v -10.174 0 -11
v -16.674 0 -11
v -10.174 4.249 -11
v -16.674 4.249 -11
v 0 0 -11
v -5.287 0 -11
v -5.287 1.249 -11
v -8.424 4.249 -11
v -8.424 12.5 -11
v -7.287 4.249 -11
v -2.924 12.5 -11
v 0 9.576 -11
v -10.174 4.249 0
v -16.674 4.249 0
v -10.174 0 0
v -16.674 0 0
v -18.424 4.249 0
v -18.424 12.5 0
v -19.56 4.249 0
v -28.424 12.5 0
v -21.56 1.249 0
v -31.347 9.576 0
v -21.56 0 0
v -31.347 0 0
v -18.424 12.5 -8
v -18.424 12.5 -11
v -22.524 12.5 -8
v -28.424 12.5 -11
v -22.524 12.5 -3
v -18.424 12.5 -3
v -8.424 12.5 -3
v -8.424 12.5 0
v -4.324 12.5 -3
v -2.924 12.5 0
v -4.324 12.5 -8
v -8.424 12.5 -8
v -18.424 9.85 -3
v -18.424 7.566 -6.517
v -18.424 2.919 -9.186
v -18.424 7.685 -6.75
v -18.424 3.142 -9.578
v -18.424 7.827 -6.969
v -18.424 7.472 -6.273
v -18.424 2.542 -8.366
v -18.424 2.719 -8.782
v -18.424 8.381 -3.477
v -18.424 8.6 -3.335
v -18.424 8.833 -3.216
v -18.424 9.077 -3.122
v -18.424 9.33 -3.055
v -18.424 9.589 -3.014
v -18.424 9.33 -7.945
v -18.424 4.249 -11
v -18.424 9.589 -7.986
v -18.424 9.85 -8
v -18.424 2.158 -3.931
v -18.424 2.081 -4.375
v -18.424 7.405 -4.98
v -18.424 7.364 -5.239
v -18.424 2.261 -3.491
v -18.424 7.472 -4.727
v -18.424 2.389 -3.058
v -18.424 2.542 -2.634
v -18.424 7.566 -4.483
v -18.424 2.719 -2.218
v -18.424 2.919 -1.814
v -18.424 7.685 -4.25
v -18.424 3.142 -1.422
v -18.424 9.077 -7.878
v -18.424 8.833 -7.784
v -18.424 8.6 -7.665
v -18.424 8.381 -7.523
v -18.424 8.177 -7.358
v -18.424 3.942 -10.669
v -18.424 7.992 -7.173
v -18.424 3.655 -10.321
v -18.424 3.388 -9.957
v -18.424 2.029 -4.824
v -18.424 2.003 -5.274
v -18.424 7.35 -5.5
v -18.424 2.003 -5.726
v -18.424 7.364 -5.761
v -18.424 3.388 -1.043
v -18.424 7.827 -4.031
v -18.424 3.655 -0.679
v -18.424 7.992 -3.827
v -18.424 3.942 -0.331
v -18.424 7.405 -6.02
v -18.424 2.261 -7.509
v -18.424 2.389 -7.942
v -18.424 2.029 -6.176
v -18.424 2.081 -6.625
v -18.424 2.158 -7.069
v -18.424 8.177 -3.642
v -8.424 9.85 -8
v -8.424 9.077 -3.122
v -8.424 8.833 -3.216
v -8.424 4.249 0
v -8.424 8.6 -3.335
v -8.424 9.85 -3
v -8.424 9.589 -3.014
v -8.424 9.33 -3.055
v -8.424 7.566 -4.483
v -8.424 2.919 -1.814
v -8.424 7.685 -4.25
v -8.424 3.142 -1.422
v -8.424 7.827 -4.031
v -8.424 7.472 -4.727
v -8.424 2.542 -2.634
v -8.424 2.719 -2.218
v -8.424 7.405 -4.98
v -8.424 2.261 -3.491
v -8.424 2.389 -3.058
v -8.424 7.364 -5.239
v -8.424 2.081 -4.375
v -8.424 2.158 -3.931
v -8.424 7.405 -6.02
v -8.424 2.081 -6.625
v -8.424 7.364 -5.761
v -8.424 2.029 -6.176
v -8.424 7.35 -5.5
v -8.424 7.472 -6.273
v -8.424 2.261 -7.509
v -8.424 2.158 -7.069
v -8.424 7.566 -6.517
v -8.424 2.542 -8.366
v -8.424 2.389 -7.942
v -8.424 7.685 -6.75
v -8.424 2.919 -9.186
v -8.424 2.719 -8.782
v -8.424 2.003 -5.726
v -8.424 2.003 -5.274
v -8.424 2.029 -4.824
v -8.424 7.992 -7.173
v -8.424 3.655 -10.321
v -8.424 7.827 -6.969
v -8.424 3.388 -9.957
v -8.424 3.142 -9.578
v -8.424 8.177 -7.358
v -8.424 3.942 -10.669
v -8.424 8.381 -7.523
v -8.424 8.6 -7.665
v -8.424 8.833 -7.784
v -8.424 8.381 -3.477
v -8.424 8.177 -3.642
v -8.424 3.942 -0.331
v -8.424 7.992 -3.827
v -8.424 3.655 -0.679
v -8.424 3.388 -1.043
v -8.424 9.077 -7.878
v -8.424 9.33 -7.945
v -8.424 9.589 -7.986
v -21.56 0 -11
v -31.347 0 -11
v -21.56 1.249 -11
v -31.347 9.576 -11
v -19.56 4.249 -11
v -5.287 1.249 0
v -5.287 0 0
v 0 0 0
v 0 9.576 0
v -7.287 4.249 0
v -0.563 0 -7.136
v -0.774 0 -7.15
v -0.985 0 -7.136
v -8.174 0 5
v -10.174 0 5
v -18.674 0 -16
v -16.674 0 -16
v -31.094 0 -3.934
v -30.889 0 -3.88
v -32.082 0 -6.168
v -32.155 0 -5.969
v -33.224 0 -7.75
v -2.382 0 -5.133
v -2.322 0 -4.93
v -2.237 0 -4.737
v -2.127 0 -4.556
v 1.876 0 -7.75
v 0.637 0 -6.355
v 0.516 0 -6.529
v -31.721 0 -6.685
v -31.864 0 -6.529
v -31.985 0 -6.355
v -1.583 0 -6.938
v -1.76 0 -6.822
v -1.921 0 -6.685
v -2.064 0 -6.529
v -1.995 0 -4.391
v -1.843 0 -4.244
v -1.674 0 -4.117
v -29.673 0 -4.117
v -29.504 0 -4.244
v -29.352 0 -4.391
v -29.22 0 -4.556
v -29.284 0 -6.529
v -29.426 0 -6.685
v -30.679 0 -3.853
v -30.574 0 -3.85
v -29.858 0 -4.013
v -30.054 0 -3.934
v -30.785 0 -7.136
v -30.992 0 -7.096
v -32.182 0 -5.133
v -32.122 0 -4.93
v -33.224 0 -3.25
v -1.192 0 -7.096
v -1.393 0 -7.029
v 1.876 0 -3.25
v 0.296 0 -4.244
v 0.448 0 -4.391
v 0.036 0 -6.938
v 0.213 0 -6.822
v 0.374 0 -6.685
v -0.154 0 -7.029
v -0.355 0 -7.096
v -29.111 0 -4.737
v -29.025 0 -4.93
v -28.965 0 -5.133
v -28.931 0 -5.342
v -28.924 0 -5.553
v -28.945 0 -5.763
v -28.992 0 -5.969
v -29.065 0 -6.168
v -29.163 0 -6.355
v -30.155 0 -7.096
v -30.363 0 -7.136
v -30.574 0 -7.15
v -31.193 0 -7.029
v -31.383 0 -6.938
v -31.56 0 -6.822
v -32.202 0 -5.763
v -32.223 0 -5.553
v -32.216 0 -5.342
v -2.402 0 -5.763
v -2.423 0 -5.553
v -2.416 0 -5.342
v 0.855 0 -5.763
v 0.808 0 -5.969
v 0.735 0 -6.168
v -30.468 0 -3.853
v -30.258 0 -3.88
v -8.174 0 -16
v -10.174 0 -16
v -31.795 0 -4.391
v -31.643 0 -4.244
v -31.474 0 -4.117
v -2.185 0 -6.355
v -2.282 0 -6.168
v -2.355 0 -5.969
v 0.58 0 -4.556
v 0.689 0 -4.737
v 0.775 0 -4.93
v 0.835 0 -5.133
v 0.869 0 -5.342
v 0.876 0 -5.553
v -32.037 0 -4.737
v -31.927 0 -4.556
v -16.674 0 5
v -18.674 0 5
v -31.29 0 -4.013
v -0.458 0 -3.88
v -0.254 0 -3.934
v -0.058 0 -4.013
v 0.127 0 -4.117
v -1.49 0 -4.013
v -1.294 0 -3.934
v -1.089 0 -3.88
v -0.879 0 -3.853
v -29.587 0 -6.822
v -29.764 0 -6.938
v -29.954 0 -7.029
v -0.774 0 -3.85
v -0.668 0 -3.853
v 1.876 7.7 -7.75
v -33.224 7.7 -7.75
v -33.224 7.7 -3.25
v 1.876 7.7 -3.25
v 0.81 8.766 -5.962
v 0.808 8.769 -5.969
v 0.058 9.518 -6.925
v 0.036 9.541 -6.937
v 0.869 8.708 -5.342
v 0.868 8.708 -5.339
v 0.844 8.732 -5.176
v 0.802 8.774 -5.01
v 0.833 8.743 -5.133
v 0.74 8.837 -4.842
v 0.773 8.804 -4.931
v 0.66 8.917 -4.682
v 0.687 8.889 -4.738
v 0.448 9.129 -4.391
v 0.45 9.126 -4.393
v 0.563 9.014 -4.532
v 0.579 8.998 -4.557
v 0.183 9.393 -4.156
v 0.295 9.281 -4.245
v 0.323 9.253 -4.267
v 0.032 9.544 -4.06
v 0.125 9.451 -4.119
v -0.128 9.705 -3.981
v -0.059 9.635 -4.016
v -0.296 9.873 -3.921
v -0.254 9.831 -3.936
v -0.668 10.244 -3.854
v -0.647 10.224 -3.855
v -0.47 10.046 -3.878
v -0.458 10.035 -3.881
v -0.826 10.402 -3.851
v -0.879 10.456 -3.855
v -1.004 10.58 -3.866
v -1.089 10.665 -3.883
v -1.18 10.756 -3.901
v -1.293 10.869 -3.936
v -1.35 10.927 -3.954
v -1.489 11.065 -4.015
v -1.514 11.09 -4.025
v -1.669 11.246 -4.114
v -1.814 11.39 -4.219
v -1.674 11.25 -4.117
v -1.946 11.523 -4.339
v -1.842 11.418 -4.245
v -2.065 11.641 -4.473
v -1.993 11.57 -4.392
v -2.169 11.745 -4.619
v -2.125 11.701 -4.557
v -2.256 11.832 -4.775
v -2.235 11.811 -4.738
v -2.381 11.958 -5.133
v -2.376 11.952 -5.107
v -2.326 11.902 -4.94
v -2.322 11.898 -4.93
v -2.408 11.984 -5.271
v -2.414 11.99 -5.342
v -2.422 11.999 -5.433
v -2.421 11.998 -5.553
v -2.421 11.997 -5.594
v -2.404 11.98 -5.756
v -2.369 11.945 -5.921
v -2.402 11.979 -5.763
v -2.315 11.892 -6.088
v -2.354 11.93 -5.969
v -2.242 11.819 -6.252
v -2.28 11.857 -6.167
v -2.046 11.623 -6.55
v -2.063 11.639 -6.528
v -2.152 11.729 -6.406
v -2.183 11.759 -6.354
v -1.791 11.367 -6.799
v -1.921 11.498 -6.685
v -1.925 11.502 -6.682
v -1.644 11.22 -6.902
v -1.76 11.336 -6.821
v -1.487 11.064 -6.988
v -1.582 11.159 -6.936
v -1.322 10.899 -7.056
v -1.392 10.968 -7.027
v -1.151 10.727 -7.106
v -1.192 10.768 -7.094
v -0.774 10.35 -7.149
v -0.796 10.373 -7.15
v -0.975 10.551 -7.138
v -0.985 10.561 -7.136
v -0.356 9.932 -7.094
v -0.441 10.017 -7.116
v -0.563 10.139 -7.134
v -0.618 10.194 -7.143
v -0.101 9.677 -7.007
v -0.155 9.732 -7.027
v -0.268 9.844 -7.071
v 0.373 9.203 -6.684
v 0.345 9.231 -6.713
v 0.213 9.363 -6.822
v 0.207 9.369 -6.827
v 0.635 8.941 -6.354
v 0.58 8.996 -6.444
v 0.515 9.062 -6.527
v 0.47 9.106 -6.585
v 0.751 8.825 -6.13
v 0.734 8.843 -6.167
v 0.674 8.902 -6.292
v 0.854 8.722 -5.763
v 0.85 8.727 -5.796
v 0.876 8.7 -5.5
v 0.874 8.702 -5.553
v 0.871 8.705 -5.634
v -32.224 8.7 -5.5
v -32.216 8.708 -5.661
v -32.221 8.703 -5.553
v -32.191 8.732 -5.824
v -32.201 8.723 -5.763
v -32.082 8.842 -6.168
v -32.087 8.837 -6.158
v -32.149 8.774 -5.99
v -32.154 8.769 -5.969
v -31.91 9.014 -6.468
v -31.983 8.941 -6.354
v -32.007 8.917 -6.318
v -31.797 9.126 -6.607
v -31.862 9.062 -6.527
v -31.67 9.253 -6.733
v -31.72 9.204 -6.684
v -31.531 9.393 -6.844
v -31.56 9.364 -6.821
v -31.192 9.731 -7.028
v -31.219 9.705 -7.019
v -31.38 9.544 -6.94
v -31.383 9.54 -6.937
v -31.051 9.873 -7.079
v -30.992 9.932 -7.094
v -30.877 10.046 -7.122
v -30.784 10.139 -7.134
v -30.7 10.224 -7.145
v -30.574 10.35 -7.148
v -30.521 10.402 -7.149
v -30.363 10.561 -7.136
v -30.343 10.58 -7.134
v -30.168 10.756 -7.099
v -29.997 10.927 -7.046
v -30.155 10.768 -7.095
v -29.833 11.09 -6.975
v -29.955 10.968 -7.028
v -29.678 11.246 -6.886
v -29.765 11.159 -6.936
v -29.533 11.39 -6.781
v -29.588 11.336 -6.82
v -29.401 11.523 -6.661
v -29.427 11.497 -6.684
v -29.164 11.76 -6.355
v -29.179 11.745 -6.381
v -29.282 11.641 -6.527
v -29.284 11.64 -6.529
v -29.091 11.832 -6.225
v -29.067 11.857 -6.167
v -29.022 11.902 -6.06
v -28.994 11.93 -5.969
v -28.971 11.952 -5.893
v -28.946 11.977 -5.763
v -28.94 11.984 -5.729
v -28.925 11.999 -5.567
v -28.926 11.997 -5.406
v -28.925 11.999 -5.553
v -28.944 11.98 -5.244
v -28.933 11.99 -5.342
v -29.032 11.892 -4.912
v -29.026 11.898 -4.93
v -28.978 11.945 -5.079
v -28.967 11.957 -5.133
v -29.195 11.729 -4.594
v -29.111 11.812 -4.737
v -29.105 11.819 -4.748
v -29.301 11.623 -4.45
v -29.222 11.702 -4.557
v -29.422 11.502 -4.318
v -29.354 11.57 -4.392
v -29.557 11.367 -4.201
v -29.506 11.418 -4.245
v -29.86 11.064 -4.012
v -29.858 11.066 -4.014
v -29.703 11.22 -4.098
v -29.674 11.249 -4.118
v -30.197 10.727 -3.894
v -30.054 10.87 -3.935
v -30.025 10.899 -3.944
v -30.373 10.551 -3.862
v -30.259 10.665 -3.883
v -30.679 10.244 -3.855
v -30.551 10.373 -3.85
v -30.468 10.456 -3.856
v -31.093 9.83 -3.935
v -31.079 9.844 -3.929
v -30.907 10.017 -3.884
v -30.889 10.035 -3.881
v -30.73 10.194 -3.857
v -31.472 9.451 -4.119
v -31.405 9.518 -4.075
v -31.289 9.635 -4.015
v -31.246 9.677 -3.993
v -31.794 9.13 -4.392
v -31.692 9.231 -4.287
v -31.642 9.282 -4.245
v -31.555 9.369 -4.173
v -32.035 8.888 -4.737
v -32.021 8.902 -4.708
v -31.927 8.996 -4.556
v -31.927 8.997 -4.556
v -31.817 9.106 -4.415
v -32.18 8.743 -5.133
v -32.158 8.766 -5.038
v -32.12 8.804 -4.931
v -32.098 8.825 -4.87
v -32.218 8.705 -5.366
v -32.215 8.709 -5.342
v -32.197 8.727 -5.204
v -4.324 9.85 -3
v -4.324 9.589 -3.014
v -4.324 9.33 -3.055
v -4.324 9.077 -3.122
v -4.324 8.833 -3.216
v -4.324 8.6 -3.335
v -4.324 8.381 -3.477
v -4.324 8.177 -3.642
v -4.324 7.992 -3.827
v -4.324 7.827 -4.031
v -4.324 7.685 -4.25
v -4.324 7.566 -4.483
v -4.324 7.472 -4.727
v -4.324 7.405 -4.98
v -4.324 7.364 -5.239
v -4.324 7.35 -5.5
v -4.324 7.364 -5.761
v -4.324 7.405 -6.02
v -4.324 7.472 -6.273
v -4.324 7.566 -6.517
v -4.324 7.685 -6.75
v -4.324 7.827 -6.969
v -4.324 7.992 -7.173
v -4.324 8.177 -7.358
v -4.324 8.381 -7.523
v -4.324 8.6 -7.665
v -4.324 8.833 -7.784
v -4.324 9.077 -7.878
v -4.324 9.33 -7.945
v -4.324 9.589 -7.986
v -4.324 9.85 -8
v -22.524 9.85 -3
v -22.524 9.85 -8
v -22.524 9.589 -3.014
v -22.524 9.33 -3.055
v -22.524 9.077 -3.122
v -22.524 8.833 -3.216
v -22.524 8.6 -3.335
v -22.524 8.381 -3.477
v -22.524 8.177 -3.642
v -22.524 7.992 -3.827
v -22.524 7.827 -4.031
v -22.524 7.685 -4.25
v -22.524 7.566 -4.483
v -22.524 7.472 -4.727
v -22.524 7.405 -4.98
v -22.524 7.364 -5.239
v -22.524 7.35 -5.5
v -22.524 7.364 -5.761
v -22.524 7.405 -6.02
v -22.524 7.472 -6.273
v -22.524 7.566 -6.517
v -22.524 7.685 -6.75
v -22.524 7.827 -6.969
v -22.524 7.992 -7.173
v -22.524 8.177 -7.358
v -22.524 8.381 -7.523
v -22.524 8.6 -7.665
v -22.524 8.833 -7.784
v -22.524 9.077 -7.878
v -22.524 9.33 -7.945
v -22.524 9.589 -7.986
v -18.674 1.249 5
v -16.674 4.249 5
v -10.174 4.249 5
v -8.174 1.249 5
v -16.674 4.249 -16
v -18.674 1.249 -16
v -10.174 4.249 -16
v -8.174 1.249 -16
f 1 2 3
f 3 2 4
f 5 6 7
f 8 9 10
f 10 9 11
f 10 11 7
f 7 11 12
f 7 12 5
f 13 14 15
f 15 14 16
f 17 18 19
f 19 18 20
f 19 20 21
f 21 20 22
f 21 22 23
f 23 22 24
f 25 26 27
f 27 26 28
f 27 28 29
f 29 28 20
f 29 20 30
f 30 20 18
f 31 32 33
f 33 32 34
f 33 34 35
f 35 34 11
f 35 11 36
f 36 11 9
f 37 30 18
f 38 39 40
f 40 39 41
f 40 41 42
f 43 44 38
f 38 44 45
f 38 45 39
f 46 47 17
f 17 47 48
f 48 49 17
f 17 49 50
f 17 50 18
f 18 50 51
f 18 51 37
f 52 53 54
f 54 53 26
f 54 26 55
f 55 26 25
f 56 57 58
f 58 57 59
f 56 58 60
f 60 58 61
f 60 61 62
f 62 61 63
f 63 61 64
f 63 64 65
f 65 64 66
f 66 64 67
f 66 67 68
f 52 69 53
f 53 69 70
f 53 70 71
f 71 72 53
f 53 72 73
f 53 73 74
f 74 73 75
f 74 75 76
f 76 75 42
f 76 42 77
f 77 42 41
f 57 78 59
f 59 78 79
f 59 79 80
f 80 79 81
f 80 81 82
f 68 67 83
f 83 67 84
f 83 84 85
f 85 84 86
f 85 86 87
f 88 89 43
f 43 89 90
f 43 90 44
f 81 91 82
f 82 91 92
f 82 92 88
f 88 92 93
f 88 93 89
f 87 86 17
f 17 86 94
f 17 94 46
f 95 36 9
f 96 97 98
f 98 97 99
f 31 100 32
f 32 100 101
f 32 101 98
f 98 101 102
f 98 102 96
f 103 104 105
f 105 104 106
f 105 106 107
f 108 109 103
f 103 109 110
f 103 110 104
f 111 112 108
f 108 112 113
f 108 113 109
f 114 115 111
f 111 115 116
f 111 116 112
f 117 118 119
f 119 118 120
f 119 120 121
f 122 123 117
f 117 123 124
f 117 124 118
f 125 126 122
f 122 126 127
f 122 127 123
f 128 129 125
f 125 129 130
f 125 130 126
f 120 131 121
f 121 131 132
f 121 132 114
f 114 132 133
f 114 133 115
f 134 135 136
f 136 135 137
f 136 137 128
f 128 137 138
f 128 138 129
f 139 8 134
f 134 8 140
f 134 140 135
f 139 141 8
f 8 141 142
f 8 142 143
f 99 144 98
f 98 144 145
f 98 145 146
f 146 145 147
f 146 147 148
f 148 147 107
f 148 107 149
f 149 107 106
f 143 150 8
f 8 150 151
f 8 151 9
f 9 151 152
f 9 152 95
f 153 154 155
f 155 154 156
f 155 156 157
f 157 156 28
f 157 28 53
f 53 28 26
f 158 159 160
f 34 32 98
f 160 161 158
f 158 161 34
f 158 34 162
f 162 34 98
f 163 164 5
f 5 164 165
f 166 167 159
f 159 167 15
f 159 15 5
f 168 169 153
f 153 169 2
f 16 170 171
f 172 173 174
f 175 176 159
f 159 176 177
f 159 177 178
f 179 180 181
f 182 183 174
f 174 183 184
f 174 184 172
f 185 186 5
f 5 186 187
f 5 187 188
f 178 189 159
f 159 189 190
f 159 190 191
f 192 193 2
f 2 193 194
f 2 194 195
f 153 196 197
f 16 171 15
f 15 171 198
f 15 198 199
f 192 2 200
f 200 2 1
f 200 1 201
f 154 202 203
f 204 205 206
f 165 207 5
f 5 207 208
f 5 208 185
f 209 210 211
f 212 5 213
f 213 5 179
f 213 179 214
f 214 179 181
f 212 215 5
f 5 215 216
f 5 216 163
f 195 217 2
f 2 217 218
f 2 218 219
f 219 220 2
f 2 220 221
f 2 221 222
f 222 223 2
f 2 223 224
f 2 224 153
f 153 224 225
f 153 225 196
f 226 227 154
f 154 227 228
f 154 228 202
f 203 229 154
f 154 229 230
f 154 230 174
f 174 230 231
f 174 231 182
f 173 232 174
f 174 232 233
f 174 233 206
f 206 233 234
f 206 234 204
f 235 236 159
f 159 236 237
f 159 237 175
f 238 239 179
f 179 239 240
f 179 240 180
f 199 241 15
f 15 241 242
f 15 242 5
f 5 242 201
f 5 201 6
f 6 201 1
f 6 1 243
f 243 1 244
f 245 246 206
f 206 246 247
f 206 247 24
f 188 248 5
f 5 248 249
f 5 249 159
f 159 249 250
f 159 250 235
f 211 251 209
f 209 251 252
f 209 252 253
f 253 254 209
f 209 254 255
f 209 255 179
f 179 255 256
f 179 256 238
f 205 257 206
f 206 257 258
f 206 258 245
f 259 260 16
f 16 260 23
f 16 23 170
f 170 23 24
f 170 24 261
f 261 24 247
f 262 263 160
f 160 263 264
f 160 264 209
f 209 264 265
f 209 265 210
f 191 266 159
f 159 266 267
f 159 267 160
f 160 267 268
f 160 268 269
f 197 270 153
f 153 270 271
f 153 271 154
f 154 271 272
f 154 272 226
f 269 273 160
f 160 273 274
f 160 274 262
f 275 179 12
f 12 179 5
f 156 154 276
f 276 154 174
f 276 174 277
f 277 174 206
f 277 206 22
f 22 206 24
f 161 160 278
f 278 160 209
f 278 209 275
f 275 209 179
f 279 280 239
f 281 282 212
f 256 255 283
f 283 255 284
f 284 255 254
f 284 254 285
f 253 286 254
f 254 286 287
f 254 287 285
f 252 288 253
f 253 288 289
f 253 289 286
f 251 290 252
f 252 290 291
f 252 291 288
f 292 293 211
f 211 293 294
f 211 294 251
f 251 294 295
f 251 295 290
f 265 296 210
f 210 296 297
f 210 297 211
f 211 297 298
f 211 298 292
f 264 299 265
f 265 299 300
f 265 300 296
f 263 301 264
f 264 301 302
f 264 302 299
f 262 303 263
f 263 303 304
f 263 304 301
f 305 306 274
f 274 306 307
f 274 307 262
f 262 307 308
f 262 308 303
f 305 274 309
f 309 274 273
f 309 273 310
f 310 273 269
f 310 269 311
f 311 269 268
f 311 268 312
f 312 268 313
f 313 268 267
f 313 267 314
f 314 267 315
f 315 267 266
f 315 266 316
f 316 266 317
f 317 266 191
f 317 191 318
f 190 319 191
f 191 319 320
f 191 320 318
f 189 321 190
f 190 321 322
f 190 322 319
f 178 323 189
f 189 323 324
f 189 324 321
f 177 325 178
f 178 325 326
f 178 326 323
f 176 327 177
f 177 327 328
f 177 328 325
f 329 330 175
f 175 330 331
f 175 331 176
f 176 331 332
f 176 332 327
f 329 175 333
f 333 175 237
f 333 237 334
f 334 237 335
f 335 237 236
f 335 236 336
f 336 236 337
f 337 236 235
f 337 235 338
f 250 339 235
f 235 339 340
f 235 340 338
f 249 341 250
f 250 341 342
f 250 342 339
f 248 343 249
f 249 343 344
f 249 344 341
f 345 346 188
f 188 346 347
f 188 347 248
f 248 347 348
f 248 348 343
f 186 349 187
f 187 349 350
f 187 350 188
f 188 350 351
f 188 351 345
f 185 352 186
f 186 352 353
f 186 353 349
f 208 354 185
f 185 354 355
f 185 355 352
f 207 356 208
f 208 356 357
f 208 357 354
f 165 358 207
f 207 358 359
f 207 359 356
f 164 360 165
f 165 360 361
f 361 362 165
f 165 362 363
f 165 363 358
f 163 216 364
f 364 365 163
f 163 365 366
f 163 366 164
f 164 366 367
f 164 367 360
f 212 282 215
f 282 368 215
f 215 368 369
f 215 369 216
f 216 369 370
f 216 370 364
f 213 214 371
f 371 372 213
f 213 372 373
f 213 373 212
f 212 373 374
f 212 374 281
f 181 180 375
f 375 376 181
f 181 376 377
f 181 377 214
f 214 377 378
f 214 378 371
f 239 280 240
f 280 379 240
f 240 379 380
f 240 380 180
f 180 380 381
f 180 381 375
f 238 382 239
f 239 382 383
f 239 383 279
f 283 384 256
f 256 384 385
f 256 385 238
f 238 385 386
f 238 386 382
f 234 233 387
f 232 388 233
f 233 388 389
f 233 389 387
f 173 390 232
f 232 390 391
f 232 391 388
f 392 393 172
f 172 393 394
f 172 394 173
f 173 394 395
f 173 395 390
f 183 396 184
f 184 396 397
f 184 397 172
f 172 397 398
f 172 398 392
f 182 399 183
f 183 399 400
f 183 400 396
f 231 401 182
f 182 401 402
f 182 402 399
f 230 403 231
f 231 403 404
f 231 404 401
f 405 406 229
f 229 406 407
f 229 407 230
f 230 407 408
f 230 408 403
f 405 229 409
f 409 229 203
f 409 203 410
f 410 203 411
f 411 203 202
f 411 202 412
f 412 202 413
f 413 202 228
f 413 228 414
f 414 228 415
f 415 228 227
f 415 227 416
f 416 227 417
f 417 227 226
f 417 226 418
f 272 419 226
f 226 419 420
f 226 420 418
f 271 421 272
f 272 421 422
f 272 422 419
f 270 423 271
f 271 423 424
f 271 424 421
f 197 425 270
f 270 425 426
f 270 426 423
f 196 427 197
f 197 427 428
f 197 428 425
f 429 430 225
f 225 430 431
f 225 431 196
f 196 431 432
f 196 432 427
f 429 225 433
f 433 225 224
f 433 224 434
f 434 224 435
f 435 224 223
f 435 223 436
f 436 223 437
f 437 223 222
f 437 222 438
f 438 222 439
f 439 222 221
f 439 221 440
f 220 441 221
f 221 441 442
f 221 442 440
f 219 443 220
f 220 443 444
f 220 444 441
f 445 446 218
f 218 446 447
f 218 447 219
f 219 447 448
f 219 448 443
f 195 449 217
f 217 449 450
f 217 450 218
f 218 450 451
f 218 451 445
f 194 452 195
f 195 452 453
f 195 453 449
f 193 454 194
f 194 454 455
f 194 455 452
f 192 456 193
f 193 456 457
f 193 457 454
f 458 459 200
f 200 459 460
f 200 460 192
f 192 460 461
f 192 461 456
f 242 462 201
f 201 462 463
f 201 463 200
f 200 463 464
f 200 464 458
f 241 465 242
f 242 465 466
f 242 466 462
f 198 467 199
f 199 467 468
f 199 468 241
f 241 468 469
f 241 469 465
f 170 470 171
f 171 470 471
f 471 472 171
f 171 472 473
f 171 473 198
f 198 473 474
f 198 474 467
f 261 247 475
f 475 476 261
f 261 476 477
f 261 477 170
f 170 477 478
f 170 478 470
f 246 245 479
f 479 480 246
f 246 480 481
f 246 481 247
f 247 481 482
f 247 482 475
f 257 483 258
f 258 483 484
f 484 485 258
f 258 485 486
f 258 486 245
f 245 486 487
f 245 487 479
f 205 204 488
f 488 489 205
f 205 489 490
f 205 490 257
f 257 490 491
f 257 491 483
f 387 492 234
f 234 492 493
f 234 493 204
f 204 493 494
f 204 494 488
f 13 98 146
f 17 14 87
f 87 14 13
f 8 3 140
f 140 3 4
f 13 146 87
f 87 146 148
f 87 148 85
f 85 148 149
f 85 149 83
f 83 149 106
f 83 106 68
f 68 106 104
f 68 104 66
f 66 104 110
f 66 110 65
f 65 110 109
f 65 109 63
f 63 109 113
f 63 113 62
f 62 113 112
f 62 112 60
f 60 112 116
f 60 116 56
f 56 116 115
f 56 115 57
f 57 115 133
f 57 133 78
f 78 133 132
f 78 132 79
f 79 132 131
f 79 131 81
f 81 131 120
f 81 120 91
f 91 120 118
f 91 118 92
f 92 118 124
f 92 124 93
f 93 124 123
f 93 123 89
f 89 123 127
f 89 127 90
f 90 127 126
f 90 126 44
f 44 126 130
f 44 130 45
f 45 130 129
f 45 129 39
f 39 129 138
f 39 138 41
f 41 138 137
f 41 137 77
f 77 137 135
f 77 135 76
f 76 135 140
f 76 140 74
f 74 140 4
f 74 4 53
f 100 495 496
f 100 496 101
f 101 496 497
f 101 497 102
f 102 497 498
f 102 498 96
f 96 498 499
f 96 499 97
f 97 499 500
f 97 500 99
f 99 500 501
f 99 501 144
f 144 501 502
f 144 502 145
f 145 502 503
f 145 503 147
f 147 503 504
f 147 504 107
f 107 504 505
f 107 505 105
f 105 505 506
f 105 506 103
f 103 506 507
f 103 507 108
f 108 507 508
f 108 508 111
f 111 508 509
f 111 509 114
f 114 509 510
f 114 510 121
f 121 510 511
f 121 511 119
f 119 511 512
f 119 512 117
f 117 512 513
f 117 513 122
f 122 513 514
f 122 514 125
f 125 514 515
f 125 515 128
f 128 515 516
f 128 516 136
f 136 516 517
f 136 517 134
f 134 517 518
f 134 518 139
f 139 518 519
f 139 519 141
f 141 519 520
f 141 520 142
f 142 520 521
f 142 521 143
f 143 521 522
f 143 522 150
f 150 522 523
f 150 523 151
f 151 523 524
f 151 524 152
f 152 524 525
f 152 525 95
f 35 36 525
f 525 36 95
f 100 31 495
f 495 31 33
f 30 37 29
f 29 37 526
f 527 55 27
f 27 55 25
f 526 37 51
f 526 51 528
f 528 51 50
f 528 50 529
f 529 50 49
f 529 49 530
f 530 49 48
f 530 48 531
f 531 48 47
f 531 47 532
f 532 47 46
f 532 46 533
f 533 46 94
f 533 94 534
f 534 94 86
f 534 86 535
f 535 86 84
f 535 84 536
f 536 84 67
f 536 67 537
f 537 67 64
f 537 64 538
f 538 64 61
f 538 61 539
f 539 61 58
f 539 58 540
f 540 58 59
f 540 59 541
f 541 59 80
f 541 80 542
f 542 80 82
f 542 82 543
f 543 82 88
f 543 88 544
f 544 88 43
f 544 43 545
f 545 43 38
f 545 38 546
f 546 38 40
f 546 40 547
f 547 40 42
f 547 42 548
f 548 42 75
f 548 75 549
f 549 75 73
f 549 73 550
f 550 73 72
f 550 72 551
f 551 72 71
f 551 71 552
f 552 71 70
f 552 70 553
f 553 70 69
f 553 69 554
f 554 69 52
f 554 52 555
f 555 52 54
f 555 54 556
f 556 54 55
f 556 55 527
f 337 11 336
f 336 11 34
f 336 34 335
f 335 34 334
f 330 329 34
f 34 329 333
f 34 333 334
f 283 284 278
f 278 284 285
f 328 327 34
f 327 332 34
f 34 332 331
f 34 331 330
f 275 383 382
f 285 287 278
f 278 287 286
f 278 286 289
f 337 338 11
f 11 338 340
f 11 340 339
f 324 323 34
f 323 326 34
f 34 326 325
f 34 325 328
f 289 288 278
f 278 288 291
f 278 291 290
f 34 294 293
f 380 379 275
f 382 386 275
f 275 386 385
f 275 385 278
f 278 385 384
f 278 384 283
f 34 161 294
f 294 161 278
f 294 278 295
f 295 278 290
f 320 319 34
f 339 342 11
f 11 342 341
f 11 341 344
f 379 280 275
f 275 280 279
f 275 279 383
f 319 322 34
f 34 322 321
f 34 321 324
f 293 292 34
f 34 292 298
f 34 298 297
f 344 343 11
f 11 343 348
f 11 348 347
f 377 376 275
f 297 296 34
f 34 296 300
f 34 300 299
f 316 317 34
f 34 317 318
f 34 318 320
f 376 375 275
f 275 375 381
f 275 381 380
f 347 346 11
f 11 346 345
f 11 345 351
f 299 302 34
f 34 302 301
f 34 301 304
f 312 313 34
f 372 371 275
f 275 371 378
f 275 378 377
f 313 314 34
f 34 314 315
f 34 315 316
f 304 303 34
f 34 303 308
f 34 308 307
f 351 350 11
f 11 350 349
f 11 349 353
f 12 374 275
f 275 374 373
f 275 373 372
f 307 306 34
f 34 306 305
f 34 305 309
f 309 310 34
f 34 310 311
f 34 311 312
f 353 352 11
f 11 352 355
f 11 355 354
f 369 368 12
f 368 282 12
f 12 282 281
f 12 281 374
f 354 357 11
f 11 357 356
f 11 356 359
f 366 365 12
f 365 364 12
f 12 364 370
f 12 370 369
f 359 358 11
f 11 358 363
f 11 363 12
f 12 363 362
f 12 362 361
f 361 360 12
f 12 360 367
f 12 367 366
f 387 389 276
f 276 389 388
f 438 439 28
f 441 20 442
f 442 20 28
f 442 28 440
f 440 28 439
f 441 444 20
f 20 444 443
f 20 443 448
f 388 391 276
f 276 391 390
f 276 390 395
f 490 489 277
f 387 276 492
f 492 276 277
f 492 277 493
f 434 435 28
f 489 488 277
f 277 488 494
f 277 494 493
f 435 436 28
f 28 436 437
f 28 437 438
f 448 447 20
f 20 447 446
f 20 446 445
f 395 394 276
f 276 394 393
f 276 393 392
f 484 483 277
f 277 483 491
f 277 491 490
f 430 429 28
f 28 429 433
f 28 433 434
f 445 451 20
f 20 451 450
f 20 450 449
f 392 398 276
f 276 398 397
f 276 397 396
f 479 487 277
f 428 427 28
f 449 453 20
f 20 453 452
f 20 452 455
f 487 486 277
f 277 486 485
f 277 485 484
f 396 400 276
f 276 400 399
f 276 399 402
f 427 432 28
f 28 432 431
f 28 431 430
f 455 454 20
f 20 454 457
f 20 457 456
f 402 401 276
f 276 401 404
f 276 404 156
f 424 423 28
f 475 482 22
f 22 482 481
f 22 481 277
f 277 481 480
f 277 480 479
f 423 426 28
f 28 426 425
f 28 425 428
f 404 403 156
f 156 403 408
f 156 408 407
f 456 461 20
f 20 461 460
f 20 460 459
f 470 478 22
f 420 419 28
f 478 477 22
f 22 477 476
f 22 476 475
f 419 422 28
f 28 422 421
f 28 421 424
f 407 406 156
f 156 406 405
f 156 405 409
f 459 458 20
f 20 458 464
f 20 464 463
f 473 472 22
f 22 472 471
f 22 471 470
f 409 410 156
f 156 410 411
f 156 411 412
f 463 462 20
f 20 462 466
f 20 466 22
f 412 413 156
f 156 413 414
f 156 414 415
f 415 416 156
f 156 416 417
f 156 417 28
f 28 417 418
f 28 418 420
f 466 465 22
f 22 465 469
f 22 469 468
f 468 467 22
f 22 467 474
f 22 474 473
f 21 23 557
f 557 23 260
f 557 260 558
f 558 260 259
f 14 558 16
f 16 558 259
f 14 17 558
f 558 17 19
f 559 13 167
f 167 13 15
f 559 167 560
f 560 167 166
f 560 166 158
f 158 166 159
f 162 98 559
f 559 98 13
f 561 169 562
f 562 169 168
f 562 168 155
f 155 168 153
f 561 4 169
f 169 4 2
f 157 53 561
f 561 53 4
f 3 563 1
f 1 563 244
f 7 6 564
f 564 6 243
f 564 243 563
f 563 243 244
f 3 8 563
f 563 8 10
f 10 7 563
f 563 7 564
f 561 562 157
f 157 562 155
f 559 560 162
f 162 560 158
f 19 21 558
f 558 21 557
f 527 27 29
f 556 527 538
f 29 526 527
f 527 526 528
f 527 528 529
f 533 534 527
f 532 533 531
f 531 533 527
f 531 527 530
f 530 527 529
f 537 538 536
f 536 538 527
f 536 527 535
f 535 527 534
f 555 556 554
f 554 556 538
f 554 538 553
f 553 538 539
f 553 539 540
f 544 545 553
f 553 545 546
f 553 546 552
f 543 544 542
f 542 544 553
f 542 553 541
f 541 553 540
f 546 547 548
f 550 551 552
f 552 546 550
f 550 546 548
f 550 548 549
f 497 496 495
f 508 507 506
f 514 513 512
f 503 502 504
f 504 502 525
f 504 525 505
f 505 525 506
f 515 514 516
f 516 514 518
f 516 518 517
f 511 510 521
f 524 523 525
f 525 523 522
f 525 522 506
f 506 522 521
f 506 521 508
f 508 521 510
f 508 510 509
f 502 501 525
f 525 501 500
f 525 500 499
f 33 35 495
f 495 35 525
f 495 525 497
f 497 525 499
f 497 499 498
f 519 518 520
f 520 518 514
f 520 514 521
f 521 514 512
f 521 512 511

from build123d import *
from OCP.BRepFilletAPI import BRepFilletAPI_MakeChamfer

# Parameters (mm, degrees)
SKIZZE1_R                       = 1.65
AUFSATZ_LINEAR_AUSTRAGEN1_DEPTH = 12.5
SCHNITT_LINEAR_START            = -10.3
SKIZZE2_R                       = 7.85
SKIZZE2_R_2                     = 2.5
SCHNITT_LINEAR_AUSTRAGEN1_DEPTH = 10
SCHNITT_LINEAR_START_2          = -5.3
SCHNITT_LINEAR_AUSTRAGEN2_DEPTH = 20
SCHNITT_LINEAR_AUSTRAGEN3_DEPTH = 4.5
SCHNITT_LINEAR_START_3          = -11
SCHNITT_LINEAR_AUSTRAGEN4_DEPTH = 11
AUFSATZ_LINEAR_START            = -4.248884
AUFSATZ_LINEAR_AUSTRAGEN2_DEPTH = 4.248884
FASE1_SIZE                      = 3
FASE1_SIZE2                     = 1.732050808
AUFSATZ_LINEAR_START_2          = 4.5
AUFSATZ_LINEAR_AUSTRAGEN3_DEPTH = 4.5
AUFSATZ_LINEAR_START_3          = 0.9
AUFSATZ_LINEAR_AUSTRAGEN4_DEPTH = 0.9
AUFSATZ_LINEAR_AUSTRAGEN5_DEPTH = 0.9


with BuildPart() as part:
    # Skizze1 → Aufsatz-Linear austragen1 (new body)
    with BuildSketch(Plane(origin=(0, 0, 0), x_dir=(1, 0, 0), z_dir=(0, 1, 0))):
        Polygon((0, 11), (-31.34722325, 11), (-33.223611625, 7.75), (-33.223611625, 3.25), (-31.34722325, 0), (0, 0), (1.876388375, 3.25), (1.876388375, 7.75), align=None)
        with Locations(Location((-0.773611625, 5.5, 0), (0, 0, 270))):
            Circle(SKIZZE1_R, mode=Mode.SUBTRACT)
        with Locations(Location((-30.573611625, 5.5, 0), (0, 0, 270))):
            Circle(SKIZZE1_R, mode=Mode.SUBTRACT)
    extrude(amount=AUFSATZ_LINEAR_AUSTRAGEN1_DEPTH)

    # Skizze2 → Schnitt-Linear austragen1 (cut)
    with BuildSketch(Plane(origin=(1.876388375, 0, 0), x_dir=(0, 0, -1), z_dir=(1, 0, 0)).offset(SCHNITT_LINEAR_START)):
        with Locations((5.5, 9.85)):
            Circle(SKIZZE2_R)
        with Locations((5.5, 9.85)):
            Circle(SKIZZE2_R_2, mode=Mode.SUBTRACT)
    extrude(amount=-SCHNITT_LINEAR_AUSTRAGEN1_DEPTH, mode=Mode.SUBTRACT)

    # Skizze3 → Schnitt-Linear austragen2 (cut)
    with BuildSketch(Plane(origin=(1.876388375, 0, 0), x_dir=(0, 0, -1), z_dir=(1, 0, 0)).offset(SCHNITT_LINEAR_START_2)):
        with BuildLine():
            Line((7.75, 12.5), (3.25, 12.5))
            Line((3.25, 12.5), (3.25, 10.939724736))
            ThreePointArc((3.25, 10.939724736), (5.5, 12.35), (7.75, 10.939724736))
            Line((7.75, 10.939724736), (7.75, 12.5))
        make_face()
        with BuildLine():
            Line((8, 12.5), (7.75, 12.5))
            Line((7.75, 12.5), (7.75, 10.939724736))
            ThreePointArc((7.75, 10.939724736), (7.936698586, 10.409016994), (8, 9.85))
            Line((8, 9.85), (8, 12.5))
        make_face()
        with BuildLine():
            Line((3.25, 12.5), (3, 12.5))
            Line((3, 12.5), (3, 9.85))
            ThreePointArc((3, 9.85), (3.063301414, 10.409016994), (3.25, 10.939724736))
            Line((3.25, 10.939724736), (3.25, 12.5))
        make_face()
        with BuildLine():
            ThreePointArc((7.75, 10.939724736), (5.5, 12.35), (3.25, 10.939724736))
            Line((3.25, 10.939724736), (3.25, 8.760275264))
            ThreePointArc((3.25, 8.760275264), (5.5, 7.35), (7.75, 8.760275264))
            Line((7.75, 8.760275264), (7.75, 10.939724736))
        make_face()
        with BuildLine():
            ThreePointArc((3.25, 10.939724736), (3.063301414, 10.409016994), (3, 9.85))
            ThreePointArc((3, 9.85), (3.063301414, 9.290983006), (3.25, 8.760275264))
            Line((3.25, 8.760275264), (3.25, 10.939724736))
        make_face()
        with BuildLine():
            ThreePointArc((8, 9.85), (7.936698586, 10.409016994), (7.75, 10.939724736))
            Line((7.75, 10.939724736), (7.75, 8.760275264))
            ThreePointArc((7.75, 8.760275264), (7.936698586, 9.290983006), (8, 9.85))
        make_face()
    extrude(amount=-SCHNITT_LINEAR_AUSTRAGEN2_DEPTH, mode=Mode.SUBTRACT)

    # Skizze4 → Schnitt-Linear austragen3 (cut)
    with BuildSketch(Plane(origin=(-23.423611625, 0, 0), x_dir=(0, 0, -1), z_dir=(1, 0, 0))):
        with BuildLine():
            Line((10.25, 12.5), (0.75, 12.5))
            Line((0.75, 12.5), (0.75, 9.85))
            ThreePointArc((0.75, 9.85), (5.5, 5.1), (10.25, 9.85))
            Line((10.25, 9.85), (10.25, 12.5))
        make_face()
    extrude(amount=-SCHNITT_LINEAR_AUSTRAGEN3_DEPTH, mode=Mode.SUBTRACT)

    # Skizze5 → Schnitt-Linear austragen4 (cut)
    with BuildSketch(Plane.XY.offset(SCHNITT_LINEAR_START_3)):
        Polygon((1.876388375, 12.5), (-2.923611625, 12.5), (1.876388375, 7.7), align=None)
        Polygon((-33.223611625, 12.5), (-28.423611625, 12.5), (-33.223611625, 7.7), align=None)
    extrude(amount=SCHNITT_LINEAR_AUSTRAGEN4_DEPTH, mode=Mode.SUBTRACT)

    # Skizze6 → Aufsatz-Linear austragen2 (add)
    with BuildSketch(Plane.XZ.offset(AUFSATZ_LINEAR_START)):
        Polygon((-16.673611625, 0), (-16.673611625, 5), (-18.673611625, 5), (-21.560362971, 0), align=None)
        Polygon((-10.173611625, 0), (-10.173611625, 5), (-8.173611625, 5), (-5.286860279, 0), align=None)
        Polygon((-18.673611625, -16), (-21.560362971, -11), (-16.673611625, -11), (-16.673611625, -16), align=None)
        Polygon((-10.173611625, -11), (-5.286860279, -11), (-8.173611625, -16), (-10.173611625, -16), align=None)
    extrude(amount=AUFSATZ_LINEAR_AUSTRAGEN2_DEPTH)

    # Fase1: one chamfer whose edges measure the first distance from different faces: ONE call of the kernel's chamfer builder (chamfer() names one face for all edges)
    fase1_edges_1 = [part.edges().sort_by_distance(p)[0] for p in [
        (-6.730235952, 4.248884, -13.5),
    ]]
    fase1_side_1 = [part.faces().sort_by_distance(p)[0] for p in [
        (-6.730235952, 2.124442, -13.5),
    ]]
    fase1_edges_2 = [part.edges().sort_by_distance(p)[0] for p in [
        (-20.116987298, 4.248884, -13.5),
    ]]
    fase1_side_2 = [part.faces().sort_by_distance(p)[0] for p in [
        (-20.116987298, 2.124442, -13.5),
    ]]
    fase1_edges_3 = [part.edges().sort_by_distance(p)[0] for p in [
        (-6.730235952, 4.248884, 2.5),
    ]]
    fase1_side_3 = [part.faces().sort_by_distance(p)[0] for p in [
        (-6.730235952, 2.124442, 2.5),
    ]]
    fase1_edges_4 = [part.edges().sort_by_distance(p)[0] for p in [
        (-20.116987298, 4.248884, 2.5),
    ]]
    fase1_side_4 = [part.faces().sort_by_distance(p)[0] for p in [
        (-20.116987298, 2.124442, 2.5),
    ]]
    fase1 = BRepFilletAPI_MakeChamfer(part.part.solid().wrapped)
    for e in fase1_edges_1:
        fase1.Add(FASE1_SIZE, FASE1_SIZE2, e.wrapped, fase1_side_1[0].wrapped)  # the first distance lies on this face
    for e in fase1_edges_2:
        fase1.Add(FASE1_SIZE, FASE1_SIZE2, e.wrapped, fase1_side_2[0].wrapped)  # the first distance lies on this face
    for e in fase1_edges_3:
        fase1.Add(FASE1_SIZE, FASE1_SIZE2, e.wrapped, fase1_side_3[0].wrapped)  # the first distance lies on this face
    for e in fase1_edges_4:
        fase1.Add(FASE1_SIZE, FASE1_SIZE2, e.wrapped, fase1_side_4[0].wrapped)  # the first distance lies on this face
    add(Compound.cast(fase1.Shape()), mode=Mode.REPLACE)

    # Skizze7 → Aufsatz-Linear austragen3 (add)
    with BuildSketch(Plane(origin=(-27.923611625, 0, 0), x_dir=(0, 0, -1), z_dir=(1, 0, 0)).offset(AUFSATZ_LINEAR_START_2)):
        with BuildLine():
            Line((10.25, 12.5), (0.75, 12.5))
            Line((0.75, 12.5), (0.75, 9.85))
            ThreePointArc((0.75, 9.85), (5.5, 5.1), (10.25, 9.85))
            Line((10.25, 9.85), (10.25, 12.5))
        make_face()
    extrude(amount=-AUFSATZ_LINEAR_AUSTRAGEN3_DEPTH)

    # Skizze8 → Aufsatz-Linear austragen4 (add)
    with BuildSketch(Plane(origin=(-23.423611625, 0, 0), x_dir=(0, 0, -1), z_dir=(1, 0, 0)).offset(AUFSATZ_LINEAR_START_3)):
        with BuildLine():
            Line((8, 12.5), (3, 12.5))
            Line((3, 12.5), (3, 9.85))
            ThreePointArc((3, 9.85), (5.5, 7.35), (8, 9.85))
            Line((8, 9.85), (8, 12.5))
        make_face()
    extrude(amount=-AUFSATZ_LINEAR_AUSTRAGEN4_DEPTH)

    # Skizze9 → Aufsatz-Linear austragen5 (add)
    with BuildSketch(Plane.ZY.offset(3.423611625)):
        with BuildLine():
            Line((-3, 9.85), (-3, 12.5))
            Line((-3, 12.5), (-8, 12.5))
            Line((-8, 12.5), (-8, 9.85))
            ThreePointArc((-8, 9.85), (-5.5, 7.35), (-3, 9.85))
        make_face()
    extrude(amount=AUFSATZ_LINEAR_AUSTRAGEN5_DEPTH)


solid = part.part
